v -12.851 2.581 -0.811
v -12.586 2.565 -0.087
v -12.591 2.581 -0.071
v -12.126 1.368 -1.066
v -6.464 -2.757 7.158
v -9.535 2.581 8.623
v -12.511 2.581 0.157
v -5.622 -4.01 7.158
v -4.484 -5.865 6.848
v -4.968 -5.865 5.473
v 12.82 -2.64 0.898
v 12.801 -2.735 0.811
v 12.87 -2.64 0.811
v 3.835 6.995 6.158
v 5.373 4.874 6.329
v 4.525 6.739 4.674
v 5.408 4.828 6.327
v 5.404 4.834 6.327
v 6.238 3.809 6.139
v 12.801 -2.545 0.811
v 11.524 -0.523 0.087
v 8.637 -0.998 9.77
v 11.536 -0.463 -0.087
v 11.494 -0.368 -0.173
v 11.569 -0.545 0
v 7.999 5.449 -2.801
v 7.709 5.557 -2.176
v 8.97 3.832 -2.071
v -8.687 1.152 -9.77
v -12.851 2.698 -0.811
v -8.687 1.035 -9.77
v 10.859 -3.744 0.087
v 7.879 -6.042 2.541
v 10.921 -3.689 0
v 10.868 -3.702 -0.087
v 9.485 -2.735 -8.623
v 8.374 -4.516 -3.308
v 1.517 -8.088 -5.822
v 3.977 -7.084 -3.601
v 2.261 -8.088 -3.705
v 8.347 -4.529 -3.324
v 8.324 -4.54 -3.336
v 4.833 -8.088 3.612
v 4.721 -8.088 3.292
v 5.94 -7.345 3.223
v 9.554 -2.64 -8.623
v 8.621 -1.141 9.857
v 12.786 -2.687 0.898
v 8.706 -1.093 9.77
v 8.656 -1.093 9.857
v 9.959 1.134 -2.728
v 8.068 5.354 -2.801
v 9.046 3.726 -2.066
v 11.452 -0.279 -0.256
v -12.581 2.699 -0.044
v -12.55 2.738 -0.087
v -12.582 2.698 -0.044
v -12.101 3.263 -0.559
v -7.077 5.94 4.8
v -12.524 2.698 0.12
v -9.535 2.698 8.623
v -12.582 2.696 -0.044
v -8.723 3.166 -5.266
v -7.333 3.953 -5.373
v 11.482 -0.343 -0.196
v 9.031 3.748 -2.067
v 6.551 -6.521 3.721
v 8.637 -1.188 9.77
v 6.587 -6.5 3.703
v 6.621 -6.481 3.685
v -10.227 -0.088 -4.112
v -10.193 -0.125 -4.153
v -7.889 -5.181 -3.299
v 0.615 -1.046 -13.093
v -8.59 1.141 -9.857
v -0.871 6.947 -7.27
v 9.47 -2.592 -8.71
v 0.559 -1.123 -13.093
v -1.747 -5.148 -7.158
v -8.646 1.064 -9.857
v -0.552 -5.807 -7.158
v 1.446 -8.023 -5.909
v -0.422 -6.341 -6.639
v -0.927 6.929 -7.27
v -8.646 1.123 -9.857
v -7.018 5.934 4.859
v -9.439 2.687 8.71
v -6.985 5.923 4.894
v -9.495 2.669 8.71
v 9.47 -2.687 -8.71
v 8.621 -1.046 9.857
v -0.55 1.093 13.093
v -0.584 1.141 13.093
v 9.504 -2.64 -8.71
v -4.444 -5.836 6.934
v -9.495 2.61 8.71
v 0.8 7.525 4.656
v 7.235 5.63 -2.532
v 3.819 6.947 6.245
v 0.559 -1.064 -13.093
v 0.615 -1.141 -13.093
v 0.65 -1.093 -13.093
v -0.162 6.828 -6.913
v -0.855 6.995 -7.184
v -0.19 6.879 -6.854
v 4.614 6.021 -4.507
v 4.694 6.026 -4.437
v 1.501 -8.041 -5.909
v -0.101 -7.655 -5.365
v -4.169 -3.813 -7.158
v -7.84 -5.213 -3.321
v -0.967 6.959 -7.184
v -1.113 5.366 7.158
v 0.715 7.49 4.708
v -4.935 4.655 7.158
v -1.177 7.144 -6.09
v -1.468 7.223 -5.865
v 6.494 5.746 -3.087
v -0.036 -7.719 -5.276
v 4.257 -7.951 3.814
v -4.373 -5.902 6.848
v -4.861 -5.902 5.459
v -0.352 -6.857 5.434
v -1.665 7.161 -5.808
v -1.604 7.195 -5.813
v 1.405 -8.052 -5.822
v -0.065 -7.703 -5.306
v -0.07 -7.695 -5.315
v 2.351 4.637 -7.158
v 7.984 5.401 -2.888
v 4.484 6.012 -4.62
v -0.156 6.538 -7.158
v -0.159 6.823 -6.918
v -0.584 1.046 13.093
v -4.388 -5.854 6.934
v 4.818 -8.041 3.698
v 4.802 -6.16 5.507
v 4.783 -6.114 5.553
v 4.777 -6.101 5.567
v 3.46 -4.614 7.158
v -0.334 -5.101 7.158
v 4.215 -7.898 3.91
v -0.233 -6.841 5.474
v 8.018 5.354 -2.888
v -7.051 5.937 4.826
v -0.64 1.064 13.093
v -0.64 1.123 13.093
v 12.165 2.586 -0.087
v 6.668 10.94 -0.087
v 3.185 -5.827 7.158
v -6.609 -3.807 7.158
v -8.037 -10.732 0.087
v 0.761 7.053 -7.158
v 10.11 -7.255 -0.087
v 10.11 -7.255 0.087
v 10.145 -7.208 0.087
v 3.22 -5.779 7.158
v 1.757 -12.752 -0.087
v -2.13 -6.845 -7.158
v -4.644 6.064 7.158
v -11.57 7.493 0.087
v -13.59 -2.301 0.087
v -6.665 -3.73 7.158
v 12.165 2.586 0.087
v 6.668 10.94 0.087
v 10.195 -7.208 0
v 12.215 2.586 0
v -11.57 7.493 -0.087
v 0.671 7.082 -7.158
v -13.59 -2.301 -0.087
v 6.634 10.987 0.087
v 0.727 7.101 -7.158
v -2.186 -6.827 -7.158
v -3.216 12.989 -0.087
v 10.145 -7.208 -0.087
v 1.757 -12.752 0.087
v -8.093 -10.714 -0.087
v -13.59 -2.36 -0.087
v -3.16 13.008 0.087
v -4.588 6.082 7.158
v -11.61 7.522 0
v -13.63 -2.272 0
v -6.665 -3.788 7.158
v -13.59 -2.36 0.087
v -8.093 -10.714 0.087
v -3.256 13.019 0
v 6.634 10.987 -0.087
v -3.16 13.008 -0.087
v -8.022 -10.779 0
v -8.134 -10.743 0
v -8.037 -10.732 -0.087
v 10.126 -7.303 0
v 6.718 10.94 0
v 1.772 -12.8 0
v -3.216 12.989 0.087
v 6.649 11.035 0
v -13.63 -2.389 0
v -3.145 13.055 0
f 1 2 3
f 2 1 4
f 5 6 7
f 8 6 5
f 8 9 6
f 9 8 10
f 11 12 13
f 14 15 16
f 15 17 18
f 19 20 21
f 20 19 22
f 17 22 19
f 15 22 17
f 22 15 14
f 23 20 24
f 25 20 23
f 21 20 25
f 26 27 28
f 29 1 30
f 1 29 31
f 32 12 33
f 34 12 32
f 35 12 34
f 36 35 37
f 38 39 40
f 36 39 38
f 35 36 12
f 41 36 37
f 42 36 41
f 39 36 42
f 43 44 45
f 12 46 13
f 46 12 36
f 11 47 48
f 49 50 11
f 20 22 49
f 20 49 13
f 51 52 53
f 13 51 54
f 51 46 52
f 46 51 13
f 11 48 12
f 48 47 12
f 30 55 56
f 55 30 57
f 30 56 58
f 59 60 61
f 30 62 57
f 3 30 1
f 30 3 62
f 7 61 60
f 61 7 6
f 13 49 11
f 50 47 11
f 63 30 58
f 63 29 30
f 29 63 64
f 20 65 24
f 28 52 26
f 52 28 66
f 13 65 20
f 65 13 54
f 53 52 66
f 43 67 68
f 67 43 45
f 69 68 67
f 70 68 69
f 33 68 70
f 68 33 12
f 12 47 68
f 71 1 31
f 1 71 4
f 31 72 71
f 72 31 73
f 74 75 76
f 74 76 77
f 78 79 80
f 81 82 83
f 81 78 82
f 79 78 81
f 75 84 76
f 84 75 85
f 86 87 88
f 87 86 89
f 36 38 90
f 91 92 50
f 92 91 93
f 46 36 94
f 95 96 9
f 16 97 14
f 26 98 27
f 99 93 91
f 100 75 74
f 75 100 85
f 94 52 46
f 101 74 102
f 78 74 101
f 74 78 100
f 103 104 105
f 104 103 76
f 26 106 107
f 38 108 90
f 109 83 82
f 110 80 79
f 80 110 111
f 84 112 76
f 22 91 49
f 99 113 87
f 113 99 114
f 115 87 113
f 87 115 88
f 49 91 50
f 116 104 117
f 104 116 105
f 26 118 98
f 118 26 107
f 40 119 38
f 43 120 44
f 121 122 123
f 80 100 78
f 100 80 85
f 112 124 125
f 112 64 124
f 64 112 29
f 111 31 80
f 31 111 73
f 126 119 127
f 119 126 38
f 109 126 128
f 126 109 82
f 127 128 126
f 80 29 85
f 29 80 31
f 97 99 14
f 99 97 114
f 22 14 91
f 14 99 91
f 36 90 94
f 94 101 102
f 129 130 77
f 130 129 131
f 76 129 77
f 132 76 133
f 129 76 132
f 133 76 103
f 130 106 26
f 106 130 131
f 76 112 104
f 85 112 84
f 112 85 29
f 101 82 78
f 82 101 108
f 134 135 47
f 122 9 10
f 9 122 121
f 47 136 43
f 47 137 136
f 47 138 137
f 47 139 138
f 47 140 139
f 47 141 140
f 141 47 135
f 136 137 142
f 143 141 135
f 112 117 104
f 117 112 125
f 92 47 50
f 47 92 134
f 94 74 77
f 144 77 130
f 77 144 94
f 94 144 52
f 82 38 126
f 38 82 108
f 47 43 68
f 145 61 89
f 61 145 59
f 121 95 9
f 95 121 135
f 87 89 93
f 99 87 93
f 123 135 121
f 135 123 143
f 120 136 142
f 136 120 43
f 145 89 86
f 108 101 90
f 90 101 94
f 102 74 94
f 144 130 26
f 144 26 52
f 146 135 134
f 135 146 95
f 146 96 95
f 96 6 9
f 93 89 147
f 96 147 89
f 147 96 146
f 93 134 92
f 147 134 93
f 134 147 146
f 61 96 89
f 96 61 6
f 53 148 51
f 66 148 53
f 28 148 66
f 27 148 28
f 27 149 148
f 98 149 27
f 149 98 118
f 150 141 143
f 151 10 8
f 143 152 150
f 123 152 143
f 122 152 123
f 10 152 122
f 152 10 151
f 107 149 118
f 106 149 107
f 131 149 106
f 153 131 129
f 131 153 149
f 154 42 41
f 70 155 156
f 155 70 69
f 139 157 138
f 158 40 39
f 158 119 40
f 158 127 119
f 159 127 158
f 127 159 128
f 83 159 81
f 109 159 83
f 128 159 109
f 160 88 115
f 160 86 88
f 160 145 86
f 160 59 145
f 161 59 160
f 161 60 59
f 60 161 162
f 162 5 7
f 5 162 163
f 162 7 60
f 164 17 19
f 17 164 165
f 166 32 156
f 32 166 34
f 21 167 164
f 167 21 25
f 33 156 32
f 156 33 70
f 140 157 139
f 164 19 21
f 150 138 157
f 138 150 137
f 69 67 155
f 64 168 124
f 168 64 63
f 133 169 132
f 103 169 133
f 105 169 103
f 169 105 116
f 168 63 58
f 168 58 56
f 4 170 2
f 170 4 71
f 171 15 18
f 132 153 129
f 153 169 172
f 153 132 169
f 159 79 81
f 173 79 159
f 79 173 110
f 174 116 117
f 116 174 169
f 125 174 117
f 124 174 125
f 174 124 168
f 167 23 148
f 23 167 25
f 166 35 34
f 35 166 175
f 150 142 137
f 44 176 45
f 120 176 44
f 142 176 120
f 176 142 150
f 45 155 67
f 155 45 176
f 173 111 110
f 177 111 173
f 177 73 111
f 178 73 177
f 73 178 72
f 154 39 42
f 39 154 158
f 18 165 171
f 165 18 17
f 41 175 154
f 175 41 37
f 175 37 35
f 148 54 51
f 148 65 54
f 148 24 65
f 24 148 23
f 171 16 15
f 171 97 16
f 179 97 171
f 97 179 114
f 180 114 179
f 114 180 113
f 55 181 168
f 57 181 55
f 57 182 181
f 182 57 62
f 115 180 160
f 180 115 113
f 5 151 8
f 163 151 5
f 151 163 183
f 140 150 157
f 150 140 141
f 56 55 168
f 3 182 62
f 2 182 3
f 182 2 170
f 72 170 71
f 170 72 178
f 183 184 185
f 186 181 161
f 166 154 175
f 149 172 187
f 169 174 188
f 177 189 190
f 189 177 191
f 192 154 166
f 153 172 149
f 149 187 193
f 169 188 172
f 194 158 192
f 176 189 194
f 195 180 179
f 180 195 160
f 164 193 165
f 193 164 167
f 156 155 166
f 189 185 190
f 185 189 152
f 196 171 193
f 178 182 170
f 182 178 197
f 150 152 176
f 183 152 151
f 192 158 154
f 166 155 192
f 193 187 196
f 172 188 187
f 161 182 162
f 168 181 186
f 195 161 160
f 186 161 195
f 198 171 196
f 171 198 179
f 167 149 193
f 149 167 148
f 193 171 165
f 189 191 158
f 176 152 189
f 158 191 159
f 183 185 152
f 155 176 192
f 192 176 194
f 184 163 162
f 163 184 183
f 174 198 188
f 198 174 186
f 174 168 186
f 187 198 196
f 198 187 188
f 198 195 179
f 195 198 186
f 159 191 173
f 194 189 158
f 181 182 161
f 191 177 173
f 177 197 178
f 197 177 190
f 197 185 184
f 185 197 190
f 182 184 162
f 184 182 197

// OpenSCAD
// Auto-generated OpenSCAD file

    inner_points = 10*[[0.6618356586031374, 1.0939888076971127, -5.2961835526280225e-12], [1.2115149155156972, 0.2586130153018244, -8.202180877206917e-12], [-1.3549399090757386, -0.23305430929635412, 8.202180877206917e-12], [-0.8052606521631785, -1.0684301016916424, 5.2961835526280225e-12], [-0.3175461590791098, 1.296006765298453, 7.122462682630471e-13], [1.009496957914357, -0.7207688023804228, -6.30345188495525e-12], [-1.1529219514743982, 0.7463275083858931, 6.30345188495525e-12], [0.1741211655190687, -1.2704480592929828, -7.122462682630471e-13], [0.5189873908662057, 0.40146128304364537, 0.707106781182594], [-0.6624123844173823, -0.37590257703726176, 0.7071067811905012], [-0.4603944268160419, 0.6034792406449857, 0.7071067811886024], [0.31696943326486526, -0.5779205346386022, 0.7071067811844928], [0.07113577095691147, 0.7053068776562026, -0.7071067811878903], [0.6208150278694714, -0.13006891473908572, -0.7071067811907962], [-0.764240021438377, 0.15562762074364267, -0.707106781182299], [-0.21456076452581702, -0.6797481716516456, -0.7071067811852049]];

    outer_points = 10*[[-0.8605920804643427, 0.10933680605329854, -0.9770023106782629], [0.05998820059622045, -0.10933680605329854, -1.300597424193143], [-0.05998820059622045, 0.10933680605329854, 1.300597424193143], [0.8605920804643427, -0.10933680605329854, 0.9770023106782629], [-1.2770491924597716, 0.26396240004043003, -0.08109249403790869], [0.9454282073298752, -0.26396240004043003, -0.8623202058031931], [-0.9454282073298752, 0.26396240004043003, 0.8623202058031931], [1.2770491924597716, -0.26396240004043003, 0.08109249403790869], [-0.08861569828117916, 0.689993424377455, -0.7183706093194601], [0.38036719645704675, 0.689993424377455, 0.6158164257108442], [-0.5050728102766082, 0.8446190183645865, 0.17753920732089434], [0.7968243084524758, 0.5353678303903235, -0.2800933909295102], [-0.7719763821831634, -0.5806566183241565, -0.258631701358803], [0.1486038988773996, -0.7993302304307536, -0.582226814873683], [-0.4403553970532671, -0.5806566183241565, 0.6847809984822989], [0.48022488400729596, -0.7993302304307536, 0.3611858849674189]];

    // Convex hull for inner set (I)
    module inner_hull() {
        hull() {
            for (p = inner_points) {
                translate(p) sphere(r=0.1);
            }
        }
    }

    // Convex hull for outer set (O) minus inner hull (O \ I)
    module outer_minus_inner() {
        difference() {
            hull() {
                for (p = outer_points) {
                    translate(p) sphere(r=0.1);
                }
            }
            inner_hull(); // Subtract inner hull
        }
    }

    // Convex hull for outer set (O) minus all translated inner hulls
    module outer_minus_AllTranslationInner() {
        difference() {
            hull() {
                for (p = outer_points) {
                    translate(p) sphere(r=0.1);
                }
            }
            hull() {
                translate([0,0,50]) inner_hull();
                translate([0,0,-50]) inner_hull();
            }; // Subtract translated inner hulls
        }
    }

    // Difference between outer_minus_inner and outer_minus_AllTranslationInner
    module outer_minus_inner_diff() {
        difference() {
            // Outer minus inner
            difference() {
                hull() {
                    for (p = outer_points) {
                        translate(p) sphere(r=0.1);
                    }
                }
                inner_hull();
            }

            // Subtract Outer minus AllTranslationInner
            difference() {
                hull() {
                    for (p = outer_points) {
                        translate(p) sphere(r=0.1);
                    }
                }
                hull() {
                    translate([0,0,50]) inner_hull();
                    translate([0,0,-50]) inner_hull();
                };
            }
        }
    }

    // Rendering all with colors applied
    color([1, 0, 0, 0.5]) inner_hull(); // Transparent red
    color([0, 1, 0, 1]) outer_minus_AllTranslationInner(); // Opaque green
    color([1, 1, 0, 1]) outer_minus_inner_diff(); // Opaque yellow
    
